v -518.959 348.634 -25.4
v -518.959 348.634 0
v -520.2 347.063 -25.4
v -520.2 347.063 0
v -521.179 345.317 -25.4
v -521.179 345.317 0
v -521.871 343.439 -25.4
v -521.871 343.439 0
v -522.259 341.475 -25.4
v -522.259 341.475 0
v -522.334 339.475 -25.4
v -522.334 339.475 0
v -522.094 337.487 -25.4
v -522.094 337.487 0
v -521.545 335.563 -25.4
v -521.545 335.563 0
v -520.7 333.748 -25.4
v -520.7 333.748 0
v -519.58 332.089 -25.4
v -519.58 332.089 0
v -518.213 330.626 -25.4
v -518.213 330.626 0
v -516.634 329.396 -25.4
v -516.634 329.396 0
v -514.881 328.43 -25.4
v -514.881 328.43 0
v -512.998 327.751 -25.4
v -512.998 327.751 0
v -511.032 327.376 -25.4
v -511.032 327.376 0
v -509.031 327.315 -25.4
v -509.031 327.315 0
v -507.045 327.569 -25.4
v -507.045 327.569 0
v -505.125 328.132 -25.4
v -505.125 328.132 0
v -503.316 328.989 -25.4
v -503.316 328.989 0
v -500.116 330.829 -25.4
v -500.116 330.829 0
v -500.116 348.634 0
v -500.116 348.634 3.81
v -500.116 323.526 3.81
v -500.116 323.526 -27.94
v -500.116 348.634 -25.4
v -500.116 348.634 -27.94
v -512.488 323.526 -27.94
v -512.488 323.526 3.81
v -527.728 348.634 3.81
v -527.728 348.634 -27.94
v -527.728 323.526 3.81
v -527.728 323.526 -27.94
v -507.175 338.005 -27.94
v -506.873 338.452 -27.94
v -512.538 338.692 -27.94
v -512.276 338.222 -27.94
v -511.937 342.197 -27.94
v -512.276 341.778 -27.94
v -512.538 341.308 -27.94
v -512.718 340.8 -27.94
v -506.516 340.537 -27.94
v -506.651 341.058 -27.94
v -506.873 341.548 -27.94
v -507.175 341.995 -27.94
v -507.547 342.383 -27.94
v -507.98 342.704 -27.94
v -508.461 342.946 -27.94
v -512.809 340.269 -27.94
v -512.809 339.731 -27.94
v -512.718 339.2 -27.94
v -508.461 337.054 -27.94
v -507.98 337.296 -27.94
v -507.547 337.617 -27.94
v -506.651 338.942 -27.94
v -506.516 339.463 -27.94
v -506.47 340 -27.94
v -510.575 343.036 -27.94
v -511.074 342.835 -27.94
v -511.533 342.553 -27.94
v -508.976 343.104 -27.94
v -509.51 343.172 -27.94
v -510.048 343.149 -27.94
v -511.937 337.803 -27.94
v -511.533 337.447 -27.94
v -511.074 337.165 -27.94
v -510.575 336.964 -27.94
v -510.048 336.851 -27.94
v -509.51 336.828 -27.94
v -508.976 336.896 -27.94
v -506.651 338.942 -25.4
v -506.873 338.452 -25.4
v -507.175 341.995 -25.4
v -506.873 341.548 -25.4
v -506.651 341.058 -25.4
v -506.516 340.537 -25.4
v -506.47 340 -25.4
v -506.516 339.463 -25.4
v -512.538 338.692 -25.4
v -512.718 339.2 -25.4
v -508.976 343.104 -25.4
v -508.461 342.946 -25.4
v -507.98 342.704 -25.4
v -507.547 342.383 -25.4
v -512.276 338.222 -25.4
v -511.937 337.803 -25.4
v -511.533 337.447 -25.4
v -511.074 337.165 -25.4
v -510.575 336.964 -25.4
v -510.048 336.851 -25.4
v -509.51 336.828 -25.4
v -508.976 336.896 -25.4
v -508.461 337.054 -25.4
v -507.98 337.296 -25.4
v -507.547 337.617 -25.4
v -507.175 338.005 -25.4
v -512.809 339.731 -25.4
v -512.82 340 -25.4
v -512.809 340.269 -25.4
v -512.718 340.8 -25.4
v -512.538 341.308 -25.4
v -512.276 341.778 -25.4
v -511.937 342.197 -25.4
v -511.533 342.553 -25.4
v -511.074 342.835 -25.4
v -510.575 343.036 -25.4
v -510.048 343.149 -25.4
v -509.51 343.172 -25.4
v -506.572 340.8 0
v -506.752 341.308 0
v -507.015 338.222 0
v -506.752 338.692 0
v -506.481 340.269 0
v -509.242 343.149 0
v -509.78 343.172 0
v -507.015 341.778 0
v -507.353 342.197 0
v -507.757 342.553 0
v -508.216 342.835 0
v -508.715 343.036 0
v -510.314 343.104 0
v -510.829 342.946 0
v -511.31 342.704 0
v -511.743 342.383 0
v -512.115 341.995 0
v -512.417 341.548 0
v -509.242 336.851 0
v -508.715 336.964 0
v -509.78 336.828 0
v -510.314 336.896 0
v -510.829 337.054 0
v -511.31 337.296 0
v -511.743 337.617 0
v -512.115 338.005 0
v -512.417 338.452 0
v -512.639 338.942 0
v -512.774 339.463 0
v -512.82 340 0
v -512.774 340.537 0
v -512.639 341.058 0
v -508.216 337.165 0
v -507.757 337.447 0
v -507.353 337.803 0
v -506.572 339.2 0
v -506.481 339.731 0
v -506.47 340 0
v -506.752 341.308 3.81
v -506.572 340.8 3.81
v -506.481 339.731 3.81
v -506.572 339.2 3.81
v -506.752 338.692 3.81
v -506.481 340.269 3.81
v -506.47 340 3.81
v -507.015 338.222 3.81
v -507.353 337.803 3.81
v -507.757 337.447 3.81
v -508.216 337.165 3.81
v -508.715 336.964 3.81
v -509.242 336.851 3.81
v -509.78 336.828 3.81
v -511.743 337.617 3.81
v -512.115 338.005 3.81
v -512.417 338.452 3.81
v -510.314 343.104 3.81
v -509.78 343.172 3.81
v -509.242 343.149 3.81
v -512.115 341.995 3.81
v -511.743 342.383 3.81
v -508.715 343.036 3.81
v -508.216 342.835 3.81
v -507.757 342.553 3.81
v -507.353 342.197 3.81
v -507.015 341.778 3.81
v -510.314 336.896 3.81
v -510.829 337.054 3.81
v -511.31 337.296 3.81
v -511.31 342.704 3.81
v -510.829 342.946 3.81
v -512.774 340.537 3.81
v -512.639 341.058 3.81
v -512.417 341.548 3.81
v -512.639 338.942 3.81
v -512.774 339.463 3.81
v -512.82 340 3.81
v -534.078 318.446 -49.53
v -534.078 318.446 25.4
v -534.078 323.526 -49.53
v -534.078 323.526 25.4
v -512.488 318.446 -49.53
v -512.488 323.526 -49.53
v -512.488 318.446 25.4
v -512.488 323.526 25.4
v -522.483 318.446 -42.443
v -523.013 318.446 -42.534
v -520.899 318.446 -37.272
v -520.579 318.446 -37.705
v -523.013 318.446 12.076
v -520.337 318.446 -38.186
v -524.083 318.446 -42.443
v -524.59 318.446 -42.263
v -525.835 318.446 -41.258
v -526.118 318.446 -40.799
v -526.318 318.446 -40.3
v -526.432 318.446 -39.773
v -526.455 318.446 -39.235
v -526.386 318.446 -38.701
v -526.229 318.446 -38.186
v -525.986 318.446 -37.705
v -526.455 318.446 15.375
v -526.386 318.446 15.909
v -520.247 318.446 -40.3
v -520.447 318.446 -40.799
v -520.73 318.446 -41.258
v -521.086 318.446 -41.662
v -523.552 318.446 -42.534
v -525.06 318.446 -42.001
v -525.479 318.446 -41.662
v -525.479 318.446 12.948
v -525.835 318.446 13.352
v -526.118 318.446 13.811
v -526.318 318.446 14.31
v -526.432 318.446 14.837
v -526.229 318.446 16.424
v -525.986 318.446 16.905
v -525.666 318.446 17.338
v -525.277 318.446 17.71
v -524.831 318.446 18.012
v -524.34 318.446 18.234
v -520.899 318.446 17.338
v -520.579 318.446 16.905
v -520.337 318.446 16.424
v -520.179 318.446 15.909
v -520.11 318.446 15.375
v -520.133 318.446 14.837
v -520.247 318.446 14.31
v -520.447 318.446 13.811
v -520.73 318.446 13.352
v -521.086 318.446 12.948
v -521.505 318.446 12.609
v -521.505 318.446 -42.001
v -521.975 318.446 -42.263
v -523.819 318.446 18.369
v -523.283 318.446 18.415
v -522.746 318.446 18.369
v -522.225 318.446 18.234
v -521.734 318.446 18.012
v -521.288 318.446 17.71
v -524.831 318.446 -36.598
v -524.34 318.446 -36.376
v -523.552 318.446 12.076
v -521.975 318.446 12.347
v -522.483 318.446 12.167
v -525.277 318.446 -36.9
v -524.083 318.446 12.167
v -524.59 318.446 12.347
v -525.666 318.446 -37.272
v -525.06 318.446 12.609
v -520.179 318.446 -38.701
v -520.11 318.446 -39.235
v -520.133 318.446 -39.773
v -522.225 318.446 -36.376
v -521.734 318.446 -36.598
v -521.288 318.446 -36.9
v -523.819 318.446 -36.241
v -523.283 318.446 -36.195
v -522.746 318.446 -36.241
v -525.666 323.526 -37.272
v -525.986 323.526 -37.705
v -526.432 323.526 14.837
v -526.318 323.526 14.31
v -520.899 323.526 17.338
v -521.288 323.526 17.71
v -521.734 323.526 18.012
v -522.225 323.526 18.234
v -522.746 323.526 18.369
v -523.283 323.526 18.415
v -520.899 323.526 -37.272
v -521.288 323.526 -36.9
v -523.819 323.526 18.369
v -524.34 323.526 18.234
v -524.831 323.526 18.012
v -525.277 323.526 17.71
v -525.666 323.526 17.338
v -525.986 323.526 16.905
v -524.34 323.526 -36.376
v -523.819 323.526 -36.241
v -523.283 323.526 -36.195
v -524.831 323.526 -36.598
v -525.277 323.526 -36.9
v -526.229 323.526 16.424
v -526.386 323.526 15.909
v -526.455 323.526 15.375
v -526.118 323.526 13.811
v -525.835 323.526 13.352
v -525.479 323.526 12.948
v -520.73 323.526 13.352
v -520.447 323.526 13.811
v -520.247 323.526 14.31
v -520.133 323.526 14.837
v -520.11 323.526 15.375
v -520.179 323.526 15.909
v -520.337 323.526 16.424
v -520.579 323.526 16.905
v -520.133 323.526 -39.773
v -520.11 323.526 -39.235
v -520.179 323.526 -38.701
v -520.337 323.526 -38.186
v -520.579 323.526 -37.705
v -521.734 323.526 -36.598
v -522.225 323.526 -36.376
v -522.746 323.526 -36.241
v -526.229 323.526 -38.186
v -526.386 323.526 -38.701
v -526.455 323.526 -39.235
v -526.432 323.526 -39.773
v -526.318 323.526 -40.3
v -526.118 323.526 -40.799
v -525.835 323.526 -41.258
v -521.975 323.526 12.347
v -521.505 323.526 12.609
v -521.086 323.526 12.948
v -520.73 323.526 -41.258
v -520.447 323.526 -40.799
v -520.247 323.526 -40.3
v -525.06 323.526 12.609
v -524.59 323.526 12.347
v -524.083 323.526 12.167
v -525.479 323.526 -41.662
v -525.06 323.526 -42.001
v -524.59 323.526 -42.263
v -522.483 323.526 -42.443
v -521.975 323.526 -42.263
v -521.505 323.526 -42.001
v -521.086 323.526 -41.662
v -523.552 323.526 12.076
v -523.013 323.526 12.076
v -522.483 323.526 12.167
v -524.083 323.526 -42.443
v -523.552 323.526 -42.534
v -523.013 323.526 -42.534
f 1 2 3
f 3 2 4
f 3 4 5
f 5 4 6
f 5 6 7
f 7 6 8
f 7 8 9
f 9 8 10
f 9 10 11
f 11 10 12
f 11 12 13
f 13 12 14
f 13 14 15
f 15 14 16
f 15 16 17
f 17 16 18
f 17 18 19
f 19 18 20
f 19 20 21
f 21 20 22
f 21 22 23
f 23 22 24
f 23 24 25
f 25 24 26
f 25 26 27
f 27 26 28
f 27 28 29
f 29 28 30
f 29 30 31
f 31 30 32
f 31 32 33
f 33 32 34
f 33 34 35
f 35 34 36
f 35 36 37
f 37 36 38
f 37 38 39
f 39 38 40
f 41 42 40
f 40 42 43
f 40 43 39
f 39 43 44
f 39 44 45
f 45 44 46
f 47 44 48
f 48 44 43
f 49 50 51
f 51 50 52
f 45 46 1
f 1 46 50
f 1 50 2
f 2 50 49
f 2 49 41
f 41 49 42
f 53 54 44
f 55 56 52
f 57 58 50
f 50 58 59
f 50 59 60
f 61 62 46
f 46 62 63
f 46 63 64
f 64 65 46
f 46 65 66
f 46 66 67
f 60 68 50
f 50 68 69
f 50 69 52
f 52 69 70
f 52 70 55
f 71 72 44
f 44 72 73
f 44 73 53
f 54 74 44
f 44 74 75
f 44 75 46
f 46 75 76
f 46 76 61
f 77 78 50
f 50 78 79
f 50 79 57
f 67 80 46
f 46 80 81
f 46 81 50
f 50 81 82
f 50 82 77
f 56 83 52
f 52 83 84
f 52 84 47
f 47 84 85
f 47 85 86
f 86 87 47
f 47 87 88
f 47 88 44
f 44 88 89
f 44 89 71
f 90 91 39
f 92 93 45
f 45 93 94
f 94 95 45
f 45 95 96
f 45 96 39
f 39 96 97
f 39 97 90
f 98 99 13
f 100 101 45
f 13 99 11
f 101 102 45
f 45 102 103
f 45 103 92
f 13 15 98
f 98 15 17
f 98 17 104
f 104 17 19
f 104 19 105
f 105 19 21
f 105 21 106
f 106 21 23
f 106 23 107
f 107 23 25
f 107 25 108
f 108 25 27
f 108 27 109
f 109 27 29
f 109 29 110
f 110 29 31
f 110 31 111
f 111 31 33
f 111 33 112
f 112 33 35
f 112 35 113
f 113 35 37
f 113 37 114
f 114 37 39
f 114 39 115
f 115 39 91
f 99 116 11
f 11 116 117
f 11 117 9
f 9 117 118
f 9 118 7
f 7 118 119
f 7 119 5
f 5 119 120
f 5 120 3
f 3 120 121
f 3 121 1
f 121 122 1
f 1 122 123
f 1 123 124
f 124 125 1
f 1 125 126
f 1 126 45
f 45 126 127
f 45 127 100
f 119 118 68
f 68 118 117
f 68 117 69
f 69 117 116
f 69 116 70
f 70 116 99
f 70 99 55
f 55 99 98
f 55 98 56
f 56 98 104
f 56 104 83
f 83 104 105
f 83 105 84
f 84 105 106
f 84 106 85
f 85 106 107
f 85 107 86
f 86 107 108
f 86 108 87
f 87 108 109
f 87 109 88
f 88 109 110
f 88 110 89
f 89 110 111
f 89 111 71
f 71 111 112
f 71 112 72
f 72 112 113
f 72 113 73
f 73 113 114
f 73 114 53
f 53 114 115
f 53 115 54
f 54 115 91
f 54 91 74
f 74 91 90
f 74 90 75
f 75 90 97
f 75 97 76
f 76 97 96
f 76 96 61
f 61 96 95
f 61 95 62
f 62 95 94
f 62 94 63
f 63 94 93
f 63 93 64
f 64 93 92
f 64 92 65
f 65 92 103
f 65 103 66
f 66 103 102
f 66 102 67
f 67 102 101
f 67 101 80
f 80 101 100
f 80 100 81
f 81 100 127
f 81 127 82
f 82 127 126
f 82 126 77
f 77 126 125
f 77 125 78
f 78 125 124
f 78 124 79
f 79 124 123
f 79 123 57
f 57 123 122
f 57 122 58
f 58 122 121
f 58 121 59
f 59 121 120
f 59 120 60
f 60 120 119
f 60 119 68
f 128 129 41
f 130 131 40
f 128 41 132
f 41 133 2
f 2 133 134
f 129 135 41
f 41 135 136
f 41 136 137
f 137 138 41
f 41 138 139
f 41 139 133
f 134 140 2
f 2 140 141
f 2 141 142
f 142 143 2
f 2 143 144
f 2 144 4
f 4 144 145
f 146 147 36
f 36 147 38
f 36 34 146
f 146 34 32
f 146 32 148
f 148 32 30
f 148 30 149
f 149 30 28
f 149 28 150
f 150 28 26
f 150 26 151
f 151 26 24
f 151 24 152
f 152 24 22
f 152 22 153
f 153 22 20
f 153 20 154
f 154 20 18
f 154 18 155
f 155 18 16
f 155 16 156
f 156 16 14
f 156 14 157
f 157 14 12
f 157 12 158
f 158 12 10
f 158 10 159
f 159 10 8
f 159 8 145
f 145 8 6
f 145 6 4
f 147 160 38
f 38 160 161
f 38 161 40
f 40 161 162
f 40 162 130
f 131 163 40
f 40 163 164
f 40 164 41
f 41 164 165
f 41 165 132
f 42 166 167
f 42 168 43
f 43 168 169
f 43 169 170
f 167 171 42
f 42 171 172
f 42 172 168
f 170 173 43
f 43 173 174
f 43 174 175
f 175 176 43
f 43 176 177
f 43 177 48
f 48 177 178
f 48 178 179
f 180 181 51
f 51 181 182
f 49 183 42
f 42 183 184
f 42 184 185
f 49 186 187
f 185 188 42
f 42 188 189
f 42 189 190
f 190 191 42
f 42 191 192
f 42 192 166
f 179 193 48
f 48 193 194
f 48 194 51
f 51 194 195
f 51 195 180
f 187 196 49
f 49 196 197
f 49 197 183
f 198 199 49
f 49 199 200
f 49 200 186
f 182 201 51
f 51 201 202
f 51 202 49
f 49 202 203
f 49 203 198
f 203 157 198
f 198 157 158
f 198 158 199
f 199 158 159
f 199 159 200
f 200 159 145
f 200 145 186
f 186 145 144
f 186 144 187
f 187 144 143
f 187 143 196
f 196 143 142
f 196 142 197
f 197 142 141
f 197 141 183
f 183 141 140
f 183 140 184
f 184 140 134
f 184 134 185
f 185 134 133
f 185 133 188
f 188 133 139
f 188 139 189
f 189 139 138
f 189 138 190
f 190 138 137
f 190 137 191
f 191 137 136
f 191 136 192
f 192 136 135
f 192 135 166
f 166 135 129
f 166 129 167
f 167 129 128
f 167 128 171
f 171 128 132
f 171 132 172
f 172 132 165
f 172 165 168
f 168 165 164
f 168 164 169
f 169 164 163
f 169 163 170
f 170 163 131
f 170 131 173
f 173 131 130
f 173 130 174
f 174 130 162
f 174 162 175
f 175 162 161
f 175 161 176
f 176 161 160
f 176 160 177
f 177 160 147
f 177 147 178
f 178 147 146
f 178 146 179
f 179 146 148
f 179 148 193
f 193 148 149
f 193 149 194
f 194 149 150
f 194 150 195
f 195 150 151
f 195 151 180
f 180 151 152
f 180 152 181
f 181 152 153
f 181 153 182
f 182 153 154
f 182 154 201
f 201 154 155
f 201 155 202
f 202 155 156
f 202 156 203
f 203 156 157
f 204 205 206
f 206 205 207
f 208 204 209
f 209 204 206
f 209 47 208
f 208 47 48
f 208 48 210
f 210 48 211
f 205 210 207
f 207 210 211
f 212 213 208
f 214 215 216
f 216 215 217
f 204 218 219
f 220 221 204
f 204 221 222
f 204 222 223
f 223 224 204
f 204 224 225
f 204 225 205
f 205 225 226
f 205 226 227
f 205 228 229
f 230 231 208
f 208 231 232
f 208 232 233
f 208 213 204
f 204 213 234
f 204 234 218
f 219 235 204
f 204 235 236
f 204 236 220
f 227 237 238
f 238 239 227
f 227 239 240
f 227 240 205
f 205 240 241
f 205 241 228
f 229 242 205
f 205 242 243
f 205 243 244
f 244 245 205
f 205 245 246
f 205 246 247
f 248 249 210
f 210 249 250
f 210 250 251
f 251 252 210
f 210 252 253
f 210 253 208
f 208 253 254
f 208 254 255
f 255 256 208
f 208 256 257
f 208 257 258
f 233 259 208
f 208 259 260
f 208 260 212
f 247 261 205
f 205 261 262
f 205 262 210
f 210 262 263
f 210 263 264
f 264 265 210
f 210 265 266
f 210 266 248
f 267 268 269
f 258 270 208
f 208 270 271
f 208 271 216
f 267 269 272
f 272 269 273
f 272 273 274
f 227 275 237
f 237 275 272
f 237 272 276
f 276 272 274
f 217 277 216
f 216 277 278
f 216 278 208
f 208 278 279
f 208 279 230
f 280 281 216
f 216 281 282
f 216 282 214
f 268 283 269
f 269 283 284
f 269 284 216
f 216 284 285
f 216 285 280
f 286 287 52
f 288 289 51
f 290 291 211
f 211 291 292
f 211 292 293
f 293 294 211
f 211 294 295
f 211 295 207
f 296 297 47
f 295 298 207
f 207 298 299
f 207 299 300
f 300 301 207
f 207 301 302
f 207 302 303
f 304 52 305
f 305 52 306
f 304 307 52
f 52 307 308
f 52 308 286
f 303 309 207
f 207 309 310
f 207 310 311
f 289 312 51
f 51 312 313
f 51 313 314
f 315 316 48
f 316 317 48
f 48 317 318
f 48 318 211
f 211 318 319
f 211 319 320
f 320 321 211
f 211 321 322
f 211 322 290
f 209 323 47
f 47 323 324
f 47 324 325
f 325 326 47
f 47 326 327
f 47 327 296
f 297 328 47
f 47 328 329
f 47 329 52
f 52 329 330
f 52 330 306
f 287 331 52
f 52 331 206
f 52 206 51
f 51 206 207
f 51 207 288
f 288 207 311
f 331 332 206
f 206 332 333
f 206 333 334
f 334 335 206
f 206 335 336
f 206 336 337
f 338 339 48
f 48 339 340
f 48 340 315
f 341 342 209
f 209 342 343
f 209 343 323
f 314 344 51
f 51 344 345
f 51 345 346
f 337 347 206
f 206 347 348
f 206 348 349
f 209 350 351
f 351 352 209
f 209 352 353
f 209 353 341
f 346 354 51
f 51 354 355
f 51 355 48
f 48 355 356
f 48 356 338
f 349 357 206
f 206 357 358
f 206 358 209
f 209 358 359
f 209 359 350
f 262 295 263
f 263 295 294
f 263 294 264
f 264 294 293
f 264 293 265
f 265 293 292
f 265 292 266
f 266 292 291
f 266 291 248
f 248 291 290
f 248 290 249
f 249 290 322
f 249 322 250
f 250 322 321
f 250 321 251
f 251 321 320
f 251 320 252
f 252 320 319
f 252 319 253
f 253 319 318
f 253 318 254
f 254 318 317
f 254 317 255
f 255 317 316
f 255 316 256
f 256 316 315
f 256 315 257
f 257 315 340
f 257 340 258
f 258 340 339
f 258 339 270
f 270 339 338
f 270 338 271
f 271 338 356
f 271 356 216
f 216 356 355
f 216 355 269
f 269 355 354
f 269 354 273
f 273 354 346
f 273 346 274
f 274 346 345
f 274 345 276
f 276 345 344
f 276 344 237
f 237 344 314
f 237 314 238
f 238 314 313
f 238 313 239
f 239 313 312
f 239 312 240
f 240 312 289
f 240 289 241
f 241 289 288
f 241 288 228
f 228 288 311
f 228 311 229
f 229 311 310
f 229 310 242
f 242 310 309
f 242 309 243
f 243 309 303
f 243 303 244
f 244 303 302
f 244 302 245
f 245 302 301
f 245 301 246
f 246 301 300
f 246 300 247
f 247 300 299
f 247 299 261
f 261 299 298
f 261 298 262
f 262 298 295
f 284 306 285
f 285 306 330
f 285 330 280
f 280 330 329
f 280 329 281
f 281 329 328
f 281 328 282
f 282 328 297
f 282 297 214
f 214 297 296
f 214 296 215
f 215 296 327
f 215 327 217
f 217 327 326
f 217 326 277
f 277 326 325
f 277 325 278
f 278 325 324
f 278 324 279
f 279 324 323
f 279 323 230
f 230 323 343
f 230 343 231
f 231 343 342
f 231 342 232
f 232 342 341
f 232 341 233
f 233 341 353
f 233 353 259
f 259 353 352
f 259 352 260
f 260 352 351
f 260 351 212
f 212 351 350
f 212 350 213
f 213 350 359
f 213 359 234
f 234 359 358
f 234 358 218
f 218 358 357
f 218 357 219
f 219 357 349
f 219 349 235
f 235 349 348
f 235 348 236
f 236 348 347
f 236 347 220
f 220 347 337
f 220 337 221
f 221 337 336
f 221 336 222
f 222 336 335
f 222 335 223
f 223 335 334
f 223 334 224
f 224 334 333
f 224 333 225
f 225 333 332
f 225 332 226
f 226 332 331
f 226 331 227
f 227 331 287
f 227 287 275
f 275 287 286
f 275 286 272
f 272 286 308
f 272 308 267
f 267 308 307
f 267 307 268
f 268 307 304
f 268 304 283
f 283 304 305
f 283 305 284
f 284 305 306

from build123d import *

# Parameters (mm, degrees)
BOSS_EXTRUDE1_DEPTH = 27.94
SKETCH2_R           = 3.175
BOSS_EXTRUDE2_DEPTH = 2.54
BOSS_EXTRUDE3_START = 3.81
SKETCH3_W           = 27.611756562
SKETCH3_H           = 25.107614127
SKETCH3_R           = 3.175
BOSS_EXTRUDE3_DEPTH = 3.81
SKETCH4_W           = 21.59
SKETCH4_H           = 74.93
SKETCH4_R           = 3.175
BOSS_EXTRUDE4_DEPTH = 5.08


with BuildPart() as part:
    # Sketch1 → Boss-Extrude1 (new body)
    with BuildSketch(Plane.XY):
        with BuildLine():
            Line((-518.959059009, 348.633589309), (-527.727560082, 348.633589309))
            Line((-527.727560082, 348.633589309), (-527.727560082, 323.525975182))
            Line((-527.727560082, 323.525975182), (-500.11580352, 323.525975182))
            Line((-500.11580352, 323.525975182), (-500.11580352, 330.828951218))
            Line((-500.11580352, 330.828951218), (-503.31589155, 328.989459324))
            ThreePointArc((-503.31589155, 328.989459324), (-505.910190066, 327.86159111), (-508.689794246, 327.335975182))
            ThreePointArc((-508.689794246, 327.335975182), (-520.655570716, 333.67086151), (-520.107560082, 347.198990562))
            ThreePointArc((-520.107560082, 347.198990562), (-519.559291988, 347.937090778), (-518.959059009, 348.633589309))
        make_face()
    extrude(amount=-BOSS_EXTRUDE1_DEPTH)

    # Sketch2 → Boss-Extrude2 (add)
    with BuildSketch(Plane(origin=(0, 0, -25.4), x_dir=(-1, 0, 0), z_dir=(0, 0, -1))):
        with BuildLine():
            Line((500.11580352, 330.828951218), (500.11580352, 348.633589309))
            Line((500.11580352, 348.633589309), (518.959059009, 348.633589309))
            ThreePointArc((518.959059009, 348.633589309), (519.579835197, 332.088638139), (503.31589155, 328.989459324))
            Line((503.31589155, 328.989459324), (500.11580352, 330.828951218))
        make_face()
        with Locations(Location((509.64503004, 340, 0), (0, 0, 180))):
            Circle(SKETCH2_R, mode=Mode.SUBTRACT)
    extrude(amount=BOSS_EXTRUDE2_DEPTH)

    # Sketch3 → Boss-Extrude3 (add)
    with BuildSketch(Plane.XY.offset(BOSS_EXTRUDE3_START)):
        with Locations((-513.921681801, 336.079782246)):
            Rectangle(SKETCH3_W, SKETCH3_H)
        with Locations((-509.64503004, 340)):
            Circle(SKETCH3_R, mode=Mode.SUBTRACT)
    extrude(amount=-BOSS_EXTRUDE3_DEPTH)

    # Sketch4 → Boss-Extrude4 (add)
    with BuildSketch(Plane(origin=(0, 323.525975182, 0), x_dir=(1, 0, 0), z_dir=(0, 1, 0))):
        with Locations((-523.282560082, 12.065)):
            Rectangle(SKETCH4_W, SKETCH4_H)
        with Locations(Location((-523.282560082, -15.24, 0), (0, 0, 270))):
            Circle(SKETCH4_R, mode=Mode.SUBTRACT)
        with Locations(Location((-523.282560082, 39.37, 0), (0, 0, 270))):
            Circle(SKETCH4_R, mode=Mode.SUBTRACT)
    extrude(amount=-BOSS_EXTRUDE4_DEPTH)


solid = part.part
